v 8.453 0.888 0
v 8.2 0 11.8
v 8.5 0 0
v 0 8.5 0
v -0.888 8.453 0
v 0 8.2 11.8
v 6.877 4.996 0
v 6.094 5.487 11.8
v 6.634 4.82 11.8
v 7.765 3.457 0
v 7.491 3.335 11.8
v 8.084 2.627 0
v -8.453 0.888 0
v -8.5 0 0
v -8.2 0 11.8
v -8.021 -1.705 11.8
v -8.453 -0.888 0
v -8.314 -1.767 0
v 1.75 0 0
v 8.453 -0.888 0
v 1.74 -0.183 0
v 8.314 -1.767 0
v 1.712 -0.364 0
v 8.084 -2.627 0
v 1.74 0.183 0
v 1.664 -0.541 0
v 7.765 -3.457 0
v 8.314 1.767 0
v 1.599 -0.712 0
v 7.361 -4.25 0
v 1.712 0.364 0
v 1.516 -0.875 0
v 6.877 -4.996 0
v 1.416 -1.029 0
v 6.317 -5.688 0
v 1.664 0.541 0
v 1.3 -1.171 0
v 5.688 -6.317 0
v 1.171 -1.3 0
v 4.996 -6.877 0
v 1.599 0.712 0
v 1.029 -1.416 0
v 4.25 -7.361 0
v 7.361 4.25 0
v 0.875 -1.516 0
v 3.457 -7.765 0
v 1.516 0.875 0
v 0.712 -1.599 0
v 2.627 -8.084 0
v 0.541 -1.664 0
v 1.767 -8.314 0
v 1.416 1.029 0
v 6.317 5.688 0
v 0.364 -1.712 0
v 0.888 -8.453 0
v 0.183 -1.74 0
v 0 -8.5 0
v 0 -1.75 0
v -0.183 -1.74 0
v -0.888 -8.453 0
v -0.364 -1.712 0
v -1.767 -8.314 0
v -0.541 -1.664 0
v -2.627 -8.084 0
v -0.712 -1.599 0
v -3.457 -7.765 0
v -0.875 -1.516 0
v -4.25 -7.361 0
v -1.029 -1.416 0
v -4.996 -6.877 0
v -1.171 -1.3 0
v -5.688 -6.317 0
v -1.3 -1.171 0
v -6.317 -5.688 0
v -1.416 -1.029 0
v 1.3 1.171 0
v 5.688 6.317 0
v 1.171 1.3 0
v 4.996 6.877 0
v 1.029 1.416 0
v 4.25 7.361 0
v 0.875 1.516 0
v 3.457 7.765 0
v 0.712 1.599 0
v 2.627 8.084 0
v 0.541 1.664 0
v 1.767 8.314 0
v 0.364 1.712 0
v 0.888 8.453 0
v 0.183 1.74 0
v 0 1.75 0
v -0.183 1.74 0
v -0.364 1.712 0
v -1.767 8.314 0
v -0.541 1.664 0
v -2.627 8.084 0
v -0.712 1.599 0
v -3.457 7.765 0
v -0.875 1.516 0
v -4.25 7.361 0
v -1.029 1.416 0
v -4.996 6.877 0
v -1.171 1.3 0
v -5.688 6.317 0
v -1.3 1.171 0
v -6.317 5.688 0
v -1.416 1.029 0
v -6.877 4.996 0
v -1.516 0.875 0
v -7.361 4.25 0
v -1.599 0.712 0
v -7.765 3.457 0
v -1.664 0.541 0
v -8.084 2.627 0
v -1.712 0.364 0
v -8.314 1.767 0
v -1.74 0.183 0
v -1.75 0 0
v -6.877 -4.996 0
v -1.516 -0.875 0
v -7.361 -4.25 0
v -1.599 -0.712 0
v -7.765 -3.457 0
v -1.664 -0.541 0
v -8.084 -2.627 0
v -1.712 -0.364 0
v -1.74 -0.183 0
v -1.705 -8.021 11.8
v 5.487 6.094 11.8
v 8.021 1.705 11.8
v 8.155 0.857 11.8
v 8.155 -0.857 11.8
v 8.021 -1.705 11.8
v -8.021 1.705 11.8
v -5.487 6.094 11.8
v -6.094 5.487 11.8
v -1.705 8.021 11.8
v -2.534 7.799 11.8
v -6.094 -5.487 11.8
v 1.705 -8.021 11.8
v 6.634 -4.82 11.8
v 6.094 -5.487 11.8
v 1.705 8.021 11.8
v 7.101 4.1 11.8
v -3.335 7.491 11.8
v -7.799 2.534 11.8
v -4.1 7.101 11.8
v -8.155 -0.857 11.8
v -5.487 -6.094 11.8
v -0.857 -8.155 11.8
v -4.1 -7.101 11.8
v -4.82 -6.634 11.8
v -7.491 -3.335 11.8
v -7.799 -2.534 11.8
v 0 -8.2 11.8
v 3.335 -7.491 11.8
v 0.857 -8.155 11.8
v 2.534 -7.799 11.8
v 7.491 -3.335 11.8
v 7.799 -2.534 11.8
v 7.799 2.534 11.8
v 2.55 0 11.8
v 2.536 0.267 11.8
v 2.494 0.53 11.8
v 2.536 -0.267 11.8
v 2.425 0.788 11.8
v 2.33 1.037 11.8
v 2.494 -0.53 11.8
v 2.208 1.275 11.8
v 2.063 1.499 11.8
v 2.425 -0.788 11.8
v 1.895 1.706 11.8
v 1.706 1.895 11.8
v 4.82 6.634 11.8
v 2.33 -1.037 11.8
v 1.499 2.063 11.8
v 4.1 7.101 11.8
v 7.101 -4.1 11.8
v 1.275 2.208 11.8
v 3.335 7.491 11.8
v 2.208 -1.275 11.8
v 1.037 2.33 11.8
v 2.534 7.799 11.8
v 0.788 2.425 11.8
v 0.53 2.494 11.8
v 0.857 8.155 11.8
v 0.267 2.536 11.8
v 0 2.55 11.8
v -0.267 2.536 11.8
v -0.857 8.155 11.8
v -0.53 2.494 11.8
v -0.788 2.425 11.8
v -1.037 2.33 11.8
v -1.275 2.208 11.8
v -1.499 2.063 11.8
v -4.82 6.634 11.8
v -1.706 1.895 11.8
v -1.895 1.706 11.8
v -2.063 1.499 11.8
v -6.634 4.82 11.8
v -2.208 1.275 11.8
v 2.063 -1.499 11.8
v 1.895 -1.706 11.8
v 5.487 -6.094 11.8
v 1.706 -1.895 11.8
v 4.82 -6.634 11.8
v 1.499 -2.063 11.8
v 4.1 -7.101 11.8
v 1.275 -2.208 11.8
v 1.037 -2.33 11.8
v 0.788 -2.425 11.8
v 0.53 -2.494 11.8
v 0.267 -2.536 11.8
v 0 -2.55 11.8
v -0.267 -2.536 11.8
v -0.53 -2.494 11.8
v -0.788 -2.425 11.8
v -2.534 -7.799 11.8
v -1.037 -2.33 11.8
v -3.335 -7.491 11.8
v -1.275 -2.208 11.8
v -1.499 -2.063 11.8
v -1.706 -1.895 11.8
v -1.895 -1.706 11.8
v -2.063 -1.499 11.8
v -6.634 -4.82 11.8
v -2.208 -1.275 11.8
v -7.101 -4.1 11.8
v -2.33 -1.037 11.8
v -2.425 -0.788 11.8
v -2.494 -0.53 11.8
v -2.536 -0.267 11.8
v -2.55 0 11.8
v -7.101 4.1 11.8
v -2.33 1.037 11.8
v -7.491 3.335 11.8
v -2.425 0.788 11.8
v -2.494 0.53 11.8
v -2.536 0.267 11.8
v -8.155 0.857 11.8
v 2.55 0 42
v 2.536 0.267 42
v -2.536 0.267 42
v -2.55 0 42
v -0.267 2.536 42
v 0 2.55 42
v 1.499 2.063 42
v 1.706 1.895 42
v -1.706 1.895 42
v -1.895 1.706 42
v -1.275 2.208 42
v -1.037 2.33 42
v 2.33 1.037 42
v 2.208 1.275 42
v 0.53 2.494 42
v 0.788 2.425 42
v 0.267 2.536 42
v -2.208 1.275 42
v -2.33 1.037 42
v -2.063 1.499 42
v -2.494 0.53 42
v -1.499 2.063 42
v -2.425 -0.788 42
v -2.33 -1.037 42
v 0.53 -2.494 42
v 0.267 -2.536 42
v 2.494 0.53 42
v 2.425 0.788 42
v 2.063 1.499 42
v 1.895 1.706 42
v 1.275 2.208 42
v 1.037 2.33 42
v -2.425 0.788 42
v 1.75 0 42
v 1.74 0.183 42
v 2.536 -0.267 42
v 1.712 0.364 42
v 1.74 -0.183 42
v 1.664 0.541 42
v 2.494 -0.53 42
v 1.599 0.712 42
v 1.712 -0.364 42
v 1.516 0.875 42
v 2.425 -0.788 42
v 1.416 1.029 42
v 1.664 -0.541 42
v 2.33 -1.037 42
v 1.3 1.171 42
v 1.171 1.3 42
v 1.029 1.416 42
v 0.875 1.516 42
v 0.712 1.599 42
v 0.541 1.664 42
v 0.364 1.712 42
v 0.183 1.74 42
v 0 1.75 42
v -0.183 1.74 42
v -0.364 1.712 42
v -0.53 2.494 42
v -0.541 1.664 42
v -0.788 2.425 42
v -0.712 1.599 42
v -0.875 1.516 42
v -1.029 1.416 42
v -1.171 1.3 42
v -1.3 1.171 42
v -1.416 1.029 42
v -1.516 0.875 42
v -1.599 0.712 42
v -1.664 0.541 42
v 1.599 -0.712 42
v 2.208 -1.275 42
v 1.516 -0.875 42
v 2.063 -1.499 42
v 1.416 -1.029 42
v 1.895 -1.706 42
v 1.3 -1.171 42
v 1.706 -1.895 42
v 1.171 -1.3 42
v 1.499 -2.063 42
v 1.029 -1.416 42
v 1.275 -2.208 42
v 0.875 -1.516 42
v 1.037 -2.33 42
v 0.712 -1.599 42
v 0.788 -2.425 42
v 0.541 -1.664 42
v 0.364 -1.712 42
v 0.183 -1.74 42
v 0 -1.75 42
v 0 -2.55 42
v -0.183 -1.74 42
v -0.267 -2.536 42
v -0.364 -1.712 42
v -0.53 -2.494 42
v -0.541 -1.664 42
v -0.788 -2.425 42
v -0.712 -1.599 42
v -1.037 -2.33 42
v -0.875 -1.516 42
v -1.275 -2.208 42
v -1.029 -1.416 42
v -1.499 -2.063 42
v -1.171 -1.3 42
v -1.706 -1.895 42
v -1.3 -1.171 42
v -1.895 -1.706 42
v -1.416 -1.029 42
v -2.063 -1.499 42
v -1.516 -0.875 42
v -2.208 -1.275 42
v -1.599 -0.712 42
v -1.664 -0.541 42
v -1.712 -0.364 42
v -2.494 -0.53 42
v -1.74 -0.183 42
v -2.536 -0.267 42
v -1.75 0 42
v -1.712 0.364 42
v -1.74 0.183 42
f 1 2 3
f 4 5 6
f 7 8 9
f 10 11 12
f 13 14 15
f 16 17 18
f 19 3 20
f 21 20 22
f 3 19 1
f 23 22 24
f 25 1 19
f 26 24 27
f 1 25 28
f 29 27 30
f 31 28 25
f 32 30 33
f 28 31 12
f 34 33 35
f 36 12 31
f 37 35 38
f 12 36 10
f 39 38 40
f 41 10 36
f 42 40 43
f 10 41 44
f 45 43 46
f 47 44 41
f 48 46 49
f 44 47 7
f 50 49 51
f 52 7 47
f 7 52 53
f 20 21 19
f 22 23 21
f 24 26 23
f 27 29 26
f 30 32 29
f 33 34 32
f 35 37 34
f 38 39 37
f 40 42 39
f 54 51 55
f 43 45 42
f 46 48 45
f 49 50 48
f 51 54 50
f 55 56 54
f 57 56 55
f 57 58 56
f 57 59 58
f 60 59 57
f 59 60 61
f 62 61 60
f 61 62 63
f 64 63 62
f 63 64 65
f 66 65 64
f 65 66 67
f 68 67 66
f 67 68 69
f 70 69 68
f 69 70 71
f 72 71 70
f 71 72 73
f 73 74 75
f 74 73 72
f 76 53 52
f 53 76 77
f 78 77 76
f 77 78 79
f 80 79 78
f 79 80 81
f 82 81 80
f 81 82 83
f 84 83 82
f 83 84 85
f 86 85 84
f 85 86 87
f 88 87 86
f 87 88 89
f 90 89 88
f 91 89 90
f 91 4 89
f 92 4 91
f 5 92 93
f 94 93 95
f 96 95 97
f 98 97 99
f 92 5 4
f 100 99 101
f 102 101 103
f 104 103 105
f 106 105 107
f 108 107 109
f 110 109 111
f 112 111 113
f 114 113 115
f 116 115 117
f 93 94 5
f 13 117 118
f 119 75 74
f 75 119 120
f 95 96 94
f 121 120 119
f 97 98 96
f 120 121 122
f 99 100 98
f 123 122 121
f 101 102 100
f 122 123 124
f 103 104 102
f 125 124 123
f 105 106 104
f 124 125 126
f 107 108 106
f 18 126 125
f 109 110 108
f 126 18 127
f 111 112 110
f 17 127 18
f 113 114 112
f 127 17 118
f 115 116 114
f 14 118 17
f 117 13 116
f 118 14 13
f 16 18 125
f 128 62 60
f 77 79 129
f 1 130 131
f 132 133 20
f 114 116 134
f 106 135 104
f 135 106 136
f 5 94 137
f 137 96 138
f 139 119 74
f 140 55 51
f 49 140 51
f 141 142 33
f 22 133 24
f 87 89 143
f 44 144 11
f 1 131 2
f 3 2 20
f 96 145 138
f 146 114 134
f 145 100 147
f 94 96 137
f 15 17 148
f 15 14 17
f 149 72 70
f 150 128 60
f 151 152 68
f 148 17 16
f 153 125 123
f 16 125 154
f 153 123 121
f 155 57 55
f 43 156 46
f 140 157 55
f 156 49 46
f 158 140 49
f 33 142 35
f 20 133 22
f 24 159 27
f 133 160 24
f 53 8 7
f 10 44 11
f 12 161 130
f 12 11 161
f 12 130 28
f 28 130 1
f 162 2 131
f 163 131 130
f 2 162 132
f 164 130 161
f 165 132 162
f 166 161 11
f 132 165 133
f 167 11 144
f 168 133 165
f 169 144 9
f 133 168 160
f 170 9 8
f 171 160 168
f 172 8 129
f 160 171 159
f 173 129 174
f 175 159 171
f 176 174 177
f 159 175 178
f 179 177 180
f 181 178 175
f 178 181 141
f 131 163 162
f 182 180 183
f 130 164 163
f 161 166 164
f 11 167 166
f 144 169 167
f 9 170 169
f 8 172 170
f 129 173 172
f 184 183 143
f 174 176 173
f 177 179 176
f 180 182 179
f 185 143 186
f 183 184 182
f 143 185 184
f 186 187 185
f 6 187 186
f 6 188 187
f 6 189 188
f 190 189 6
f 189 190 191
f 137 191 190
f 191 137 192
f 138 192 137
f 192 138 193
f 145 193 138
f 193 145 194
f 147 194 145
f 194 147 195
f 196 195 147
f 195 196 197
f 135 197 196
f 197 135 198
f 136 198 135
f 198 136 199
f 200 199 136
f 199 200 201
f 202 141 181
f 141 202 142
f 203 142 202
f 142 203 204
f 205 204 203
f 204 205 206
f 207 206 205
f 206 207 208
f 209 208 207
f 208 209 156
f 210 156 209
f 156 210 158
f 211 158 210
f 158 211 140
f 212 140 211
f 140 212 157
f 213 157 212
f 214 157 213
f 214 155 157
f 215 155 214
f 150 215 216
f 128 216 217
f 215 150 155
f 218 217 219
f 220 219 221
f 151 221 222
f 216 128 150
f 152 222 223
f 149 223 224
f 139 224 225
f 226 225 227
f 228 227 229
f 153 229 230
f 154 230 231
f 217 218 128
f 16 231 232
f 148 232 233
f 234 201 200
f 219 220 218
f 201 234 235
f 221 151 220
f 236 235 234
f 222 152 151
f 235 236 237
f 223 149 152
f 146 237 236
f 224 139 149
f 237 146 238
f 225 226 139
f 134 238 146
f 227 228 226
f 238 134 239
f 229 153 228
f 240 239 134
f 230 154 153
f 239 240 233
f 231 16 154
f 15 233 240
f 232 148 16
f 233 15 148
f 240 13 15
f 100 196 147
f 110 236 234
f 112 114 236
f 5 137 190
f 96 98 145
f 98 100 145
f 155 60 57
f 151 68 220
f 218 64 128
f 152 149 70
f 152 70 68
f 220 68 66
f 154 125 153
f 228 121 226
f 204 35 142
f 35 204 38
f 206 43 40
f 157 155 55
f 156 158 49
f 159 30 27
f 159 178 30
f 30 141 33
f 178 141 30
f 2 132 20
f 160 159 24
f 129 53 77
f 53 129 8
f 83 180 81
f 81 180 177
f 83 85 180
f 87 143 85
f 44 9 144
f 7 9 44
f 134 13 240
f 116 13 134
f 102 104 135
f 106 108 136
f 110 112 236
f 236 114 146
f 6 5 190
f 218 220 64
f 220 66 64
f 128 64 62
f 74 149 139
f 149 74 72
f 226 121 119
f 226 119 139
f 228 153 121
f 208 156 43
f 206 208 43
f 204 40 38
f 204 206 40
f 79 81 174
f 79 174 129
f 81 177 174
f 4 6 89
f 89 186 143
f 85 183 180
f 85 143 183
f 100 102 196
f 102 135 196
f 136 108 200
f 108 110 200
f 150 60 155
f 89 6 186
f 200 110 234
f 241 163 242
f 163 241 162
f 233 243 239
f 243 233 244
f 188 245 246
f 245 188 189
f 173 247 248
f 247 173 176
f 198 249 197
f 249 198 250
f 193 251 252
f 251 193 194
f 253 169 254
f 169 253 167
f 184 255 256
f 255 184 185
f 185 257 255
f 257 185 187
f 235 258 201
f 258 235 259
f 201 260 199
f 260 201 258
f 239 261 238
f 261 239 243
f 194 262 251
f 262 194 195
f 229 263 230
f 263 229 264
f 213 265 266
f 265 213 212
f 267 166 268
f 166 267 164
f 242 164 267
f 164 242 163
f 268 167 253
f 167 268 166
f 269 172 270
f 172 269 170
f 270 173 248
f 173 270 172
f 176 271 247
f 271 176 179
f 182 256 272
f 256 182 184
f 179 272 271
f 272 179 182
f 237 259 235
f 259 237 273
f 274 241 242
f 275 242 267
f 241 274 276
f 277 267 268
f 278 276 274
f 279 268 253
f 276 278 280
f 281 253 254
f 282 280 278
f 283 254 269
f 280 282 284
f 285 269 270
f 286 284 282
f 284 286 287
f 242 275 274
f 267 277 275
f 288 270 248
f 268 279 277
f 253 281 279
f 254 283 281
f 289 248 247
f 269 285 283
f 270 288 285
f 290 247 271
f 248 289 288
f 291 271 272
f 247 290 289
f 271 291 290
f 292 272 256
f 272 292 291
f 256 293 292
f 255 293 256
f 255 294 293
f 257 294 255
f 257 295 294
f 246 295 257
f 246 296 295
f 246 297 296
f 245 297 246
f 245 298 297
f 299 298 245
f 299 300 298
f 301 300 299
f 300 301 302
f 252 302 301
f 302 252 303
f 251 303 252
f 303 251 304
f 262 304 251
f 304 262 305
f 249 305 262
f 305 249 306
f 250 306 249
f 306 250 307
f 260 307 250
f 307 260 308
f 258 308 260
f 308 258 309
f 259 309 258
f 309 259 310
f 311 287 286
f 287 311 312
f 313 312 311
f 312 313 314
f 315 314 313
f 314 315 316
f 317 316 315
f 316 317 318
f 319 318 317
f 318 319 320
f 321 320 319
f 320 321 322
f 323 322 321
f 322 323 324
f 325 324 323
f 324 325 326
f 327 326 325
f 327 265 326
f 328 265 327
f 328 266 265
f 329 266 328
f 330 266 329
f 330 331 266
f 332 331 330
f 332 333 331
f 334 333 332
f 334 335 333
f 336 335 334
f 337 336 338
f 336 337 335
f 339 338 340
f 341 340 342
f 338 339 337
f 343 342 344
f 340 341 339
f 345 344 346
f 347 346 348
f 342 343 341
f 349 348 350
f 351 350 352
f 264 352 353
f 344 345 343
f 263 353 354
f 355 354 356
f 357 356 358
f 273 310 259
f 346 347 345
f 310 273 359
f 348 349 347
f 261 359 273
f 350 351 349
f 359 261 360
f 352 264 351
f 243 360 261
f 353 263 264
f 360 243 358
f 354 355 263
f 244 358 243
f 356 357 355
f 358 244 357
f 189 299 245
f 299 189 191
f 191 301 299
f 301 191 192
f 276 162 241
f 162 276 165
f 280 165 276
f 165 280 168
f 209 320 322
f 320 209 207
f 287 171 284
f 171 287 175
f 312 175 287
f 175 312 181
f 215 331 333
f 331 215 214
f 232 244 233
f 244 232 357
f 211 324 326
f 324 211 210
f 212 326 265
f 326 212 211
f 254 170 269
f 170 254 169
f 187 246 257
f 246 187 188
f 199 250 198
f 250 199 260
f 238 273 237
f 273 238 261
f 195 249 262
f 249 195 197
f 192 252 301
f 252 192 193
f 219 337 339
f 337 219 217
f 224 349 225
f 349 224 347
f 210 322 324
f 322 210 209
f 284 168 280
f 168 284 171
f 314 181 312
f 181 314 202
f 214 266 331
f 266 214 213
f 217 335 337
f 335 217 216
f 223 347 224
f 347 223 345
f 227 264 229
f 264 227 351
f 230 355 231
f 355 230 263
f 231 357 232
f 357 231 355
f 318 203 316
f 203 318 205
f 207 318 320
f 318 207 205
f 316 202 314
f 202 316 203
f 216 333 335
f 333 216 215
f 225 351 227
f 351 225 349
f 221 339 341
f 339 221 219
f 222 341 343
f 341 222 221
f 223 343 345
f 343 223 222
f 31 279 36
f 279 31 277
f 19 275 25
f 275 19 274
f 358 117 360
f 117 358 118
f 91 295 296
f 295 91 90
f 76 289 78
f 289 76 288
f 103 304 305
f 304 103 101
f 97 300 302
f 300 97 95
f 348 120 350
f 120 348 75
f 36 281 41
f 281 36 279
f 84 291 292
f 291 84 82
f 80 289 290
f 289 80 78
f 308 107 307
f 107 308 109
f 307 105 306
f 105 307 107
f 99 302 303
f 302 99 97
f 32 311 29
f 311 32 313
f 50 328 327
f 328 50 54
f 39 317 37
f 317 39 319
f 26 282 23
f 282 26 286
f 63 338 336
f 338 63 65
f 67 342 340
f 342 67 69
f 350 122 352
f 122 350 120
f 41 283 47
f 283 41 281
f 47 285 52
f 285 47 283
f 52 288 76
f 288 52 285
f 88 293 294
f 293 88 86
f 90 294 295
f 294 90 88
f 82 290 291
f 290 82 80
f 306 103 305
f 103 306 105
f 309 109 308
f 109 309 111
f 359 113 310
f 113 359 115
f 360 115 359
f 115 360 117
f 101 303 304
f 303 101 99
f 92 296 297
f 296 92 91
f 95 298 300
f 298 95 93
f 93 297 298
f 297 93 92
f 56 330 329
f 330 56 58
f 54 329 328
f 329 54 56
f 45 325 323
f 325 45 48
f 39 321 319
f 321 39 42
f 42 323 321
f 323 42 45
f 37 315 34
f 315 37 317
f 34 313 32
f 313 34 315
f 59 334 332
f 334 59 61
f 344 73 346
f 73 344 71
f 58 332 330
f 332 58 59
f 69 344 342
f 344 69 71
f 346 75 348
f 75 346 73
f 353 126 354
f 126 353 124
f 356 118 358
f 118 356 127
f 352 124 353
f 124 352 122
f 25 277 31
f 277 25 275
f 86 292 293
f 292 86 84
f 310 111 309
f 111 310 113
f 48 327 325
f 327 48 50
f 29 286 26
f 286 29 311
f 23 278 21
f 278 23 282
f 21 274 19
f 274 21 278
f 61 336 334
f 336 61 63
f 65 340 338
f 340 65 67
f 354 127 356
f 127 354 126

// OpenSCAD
$fn=60;




difference(){
union(){
cylinder(h = 11.8, r1=8.5, r2=8.2);
cylinder(h = 42, d = 5.1);
}
translate([0,0,-10])
cylinder(h = 100, d = 3.5);
}
